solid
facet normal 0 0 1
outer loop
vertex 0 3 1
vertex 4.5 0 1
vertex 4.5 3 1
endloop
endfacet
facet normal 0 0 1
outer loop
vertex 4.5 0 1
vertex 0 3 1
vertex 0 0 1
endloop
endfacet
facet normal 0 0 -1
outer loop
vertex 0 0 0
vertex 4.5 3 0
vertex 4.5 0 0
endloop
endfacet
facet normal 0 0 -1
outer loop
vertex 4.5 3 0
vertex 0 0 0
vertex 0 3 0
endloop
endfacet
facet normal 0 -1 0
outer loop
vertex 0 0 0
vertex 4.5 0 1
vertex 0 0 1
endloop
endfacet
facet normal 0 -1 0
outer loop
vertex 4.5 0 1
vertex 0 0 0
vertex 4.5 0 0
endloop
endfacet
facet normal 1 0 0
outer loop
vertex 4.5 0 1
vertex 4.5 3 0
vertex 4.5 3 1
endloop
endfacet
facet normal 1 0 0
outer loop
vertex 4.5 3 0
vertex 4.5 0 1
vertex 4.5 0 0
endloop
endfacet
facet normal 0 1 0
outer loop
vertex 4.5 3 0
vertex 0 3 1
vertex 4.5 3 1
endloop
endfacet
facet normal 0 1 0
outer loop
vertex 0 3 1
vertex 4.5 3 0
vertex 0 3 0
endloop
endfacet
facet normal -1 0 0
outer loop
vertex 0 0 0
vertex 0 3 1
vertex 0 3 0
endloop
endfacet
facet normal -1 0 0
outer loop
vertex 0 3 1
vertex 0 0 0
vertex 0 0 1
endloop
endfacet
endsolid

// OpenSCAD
/* Warning, this is a very basic generator with a lot of approximation 
input data : [VDFN, JHA, 4.5x3.0mm, 14, , A, C04-01198A]
generated by com.zoubworld.electronics.cad.model3d.Basic
Date : Sun Feb 15 10:50:49 CET 2026
*/

//body
color("black")
translate([0,0,0])
cube([4.5,3.0,1.0], center=false);
